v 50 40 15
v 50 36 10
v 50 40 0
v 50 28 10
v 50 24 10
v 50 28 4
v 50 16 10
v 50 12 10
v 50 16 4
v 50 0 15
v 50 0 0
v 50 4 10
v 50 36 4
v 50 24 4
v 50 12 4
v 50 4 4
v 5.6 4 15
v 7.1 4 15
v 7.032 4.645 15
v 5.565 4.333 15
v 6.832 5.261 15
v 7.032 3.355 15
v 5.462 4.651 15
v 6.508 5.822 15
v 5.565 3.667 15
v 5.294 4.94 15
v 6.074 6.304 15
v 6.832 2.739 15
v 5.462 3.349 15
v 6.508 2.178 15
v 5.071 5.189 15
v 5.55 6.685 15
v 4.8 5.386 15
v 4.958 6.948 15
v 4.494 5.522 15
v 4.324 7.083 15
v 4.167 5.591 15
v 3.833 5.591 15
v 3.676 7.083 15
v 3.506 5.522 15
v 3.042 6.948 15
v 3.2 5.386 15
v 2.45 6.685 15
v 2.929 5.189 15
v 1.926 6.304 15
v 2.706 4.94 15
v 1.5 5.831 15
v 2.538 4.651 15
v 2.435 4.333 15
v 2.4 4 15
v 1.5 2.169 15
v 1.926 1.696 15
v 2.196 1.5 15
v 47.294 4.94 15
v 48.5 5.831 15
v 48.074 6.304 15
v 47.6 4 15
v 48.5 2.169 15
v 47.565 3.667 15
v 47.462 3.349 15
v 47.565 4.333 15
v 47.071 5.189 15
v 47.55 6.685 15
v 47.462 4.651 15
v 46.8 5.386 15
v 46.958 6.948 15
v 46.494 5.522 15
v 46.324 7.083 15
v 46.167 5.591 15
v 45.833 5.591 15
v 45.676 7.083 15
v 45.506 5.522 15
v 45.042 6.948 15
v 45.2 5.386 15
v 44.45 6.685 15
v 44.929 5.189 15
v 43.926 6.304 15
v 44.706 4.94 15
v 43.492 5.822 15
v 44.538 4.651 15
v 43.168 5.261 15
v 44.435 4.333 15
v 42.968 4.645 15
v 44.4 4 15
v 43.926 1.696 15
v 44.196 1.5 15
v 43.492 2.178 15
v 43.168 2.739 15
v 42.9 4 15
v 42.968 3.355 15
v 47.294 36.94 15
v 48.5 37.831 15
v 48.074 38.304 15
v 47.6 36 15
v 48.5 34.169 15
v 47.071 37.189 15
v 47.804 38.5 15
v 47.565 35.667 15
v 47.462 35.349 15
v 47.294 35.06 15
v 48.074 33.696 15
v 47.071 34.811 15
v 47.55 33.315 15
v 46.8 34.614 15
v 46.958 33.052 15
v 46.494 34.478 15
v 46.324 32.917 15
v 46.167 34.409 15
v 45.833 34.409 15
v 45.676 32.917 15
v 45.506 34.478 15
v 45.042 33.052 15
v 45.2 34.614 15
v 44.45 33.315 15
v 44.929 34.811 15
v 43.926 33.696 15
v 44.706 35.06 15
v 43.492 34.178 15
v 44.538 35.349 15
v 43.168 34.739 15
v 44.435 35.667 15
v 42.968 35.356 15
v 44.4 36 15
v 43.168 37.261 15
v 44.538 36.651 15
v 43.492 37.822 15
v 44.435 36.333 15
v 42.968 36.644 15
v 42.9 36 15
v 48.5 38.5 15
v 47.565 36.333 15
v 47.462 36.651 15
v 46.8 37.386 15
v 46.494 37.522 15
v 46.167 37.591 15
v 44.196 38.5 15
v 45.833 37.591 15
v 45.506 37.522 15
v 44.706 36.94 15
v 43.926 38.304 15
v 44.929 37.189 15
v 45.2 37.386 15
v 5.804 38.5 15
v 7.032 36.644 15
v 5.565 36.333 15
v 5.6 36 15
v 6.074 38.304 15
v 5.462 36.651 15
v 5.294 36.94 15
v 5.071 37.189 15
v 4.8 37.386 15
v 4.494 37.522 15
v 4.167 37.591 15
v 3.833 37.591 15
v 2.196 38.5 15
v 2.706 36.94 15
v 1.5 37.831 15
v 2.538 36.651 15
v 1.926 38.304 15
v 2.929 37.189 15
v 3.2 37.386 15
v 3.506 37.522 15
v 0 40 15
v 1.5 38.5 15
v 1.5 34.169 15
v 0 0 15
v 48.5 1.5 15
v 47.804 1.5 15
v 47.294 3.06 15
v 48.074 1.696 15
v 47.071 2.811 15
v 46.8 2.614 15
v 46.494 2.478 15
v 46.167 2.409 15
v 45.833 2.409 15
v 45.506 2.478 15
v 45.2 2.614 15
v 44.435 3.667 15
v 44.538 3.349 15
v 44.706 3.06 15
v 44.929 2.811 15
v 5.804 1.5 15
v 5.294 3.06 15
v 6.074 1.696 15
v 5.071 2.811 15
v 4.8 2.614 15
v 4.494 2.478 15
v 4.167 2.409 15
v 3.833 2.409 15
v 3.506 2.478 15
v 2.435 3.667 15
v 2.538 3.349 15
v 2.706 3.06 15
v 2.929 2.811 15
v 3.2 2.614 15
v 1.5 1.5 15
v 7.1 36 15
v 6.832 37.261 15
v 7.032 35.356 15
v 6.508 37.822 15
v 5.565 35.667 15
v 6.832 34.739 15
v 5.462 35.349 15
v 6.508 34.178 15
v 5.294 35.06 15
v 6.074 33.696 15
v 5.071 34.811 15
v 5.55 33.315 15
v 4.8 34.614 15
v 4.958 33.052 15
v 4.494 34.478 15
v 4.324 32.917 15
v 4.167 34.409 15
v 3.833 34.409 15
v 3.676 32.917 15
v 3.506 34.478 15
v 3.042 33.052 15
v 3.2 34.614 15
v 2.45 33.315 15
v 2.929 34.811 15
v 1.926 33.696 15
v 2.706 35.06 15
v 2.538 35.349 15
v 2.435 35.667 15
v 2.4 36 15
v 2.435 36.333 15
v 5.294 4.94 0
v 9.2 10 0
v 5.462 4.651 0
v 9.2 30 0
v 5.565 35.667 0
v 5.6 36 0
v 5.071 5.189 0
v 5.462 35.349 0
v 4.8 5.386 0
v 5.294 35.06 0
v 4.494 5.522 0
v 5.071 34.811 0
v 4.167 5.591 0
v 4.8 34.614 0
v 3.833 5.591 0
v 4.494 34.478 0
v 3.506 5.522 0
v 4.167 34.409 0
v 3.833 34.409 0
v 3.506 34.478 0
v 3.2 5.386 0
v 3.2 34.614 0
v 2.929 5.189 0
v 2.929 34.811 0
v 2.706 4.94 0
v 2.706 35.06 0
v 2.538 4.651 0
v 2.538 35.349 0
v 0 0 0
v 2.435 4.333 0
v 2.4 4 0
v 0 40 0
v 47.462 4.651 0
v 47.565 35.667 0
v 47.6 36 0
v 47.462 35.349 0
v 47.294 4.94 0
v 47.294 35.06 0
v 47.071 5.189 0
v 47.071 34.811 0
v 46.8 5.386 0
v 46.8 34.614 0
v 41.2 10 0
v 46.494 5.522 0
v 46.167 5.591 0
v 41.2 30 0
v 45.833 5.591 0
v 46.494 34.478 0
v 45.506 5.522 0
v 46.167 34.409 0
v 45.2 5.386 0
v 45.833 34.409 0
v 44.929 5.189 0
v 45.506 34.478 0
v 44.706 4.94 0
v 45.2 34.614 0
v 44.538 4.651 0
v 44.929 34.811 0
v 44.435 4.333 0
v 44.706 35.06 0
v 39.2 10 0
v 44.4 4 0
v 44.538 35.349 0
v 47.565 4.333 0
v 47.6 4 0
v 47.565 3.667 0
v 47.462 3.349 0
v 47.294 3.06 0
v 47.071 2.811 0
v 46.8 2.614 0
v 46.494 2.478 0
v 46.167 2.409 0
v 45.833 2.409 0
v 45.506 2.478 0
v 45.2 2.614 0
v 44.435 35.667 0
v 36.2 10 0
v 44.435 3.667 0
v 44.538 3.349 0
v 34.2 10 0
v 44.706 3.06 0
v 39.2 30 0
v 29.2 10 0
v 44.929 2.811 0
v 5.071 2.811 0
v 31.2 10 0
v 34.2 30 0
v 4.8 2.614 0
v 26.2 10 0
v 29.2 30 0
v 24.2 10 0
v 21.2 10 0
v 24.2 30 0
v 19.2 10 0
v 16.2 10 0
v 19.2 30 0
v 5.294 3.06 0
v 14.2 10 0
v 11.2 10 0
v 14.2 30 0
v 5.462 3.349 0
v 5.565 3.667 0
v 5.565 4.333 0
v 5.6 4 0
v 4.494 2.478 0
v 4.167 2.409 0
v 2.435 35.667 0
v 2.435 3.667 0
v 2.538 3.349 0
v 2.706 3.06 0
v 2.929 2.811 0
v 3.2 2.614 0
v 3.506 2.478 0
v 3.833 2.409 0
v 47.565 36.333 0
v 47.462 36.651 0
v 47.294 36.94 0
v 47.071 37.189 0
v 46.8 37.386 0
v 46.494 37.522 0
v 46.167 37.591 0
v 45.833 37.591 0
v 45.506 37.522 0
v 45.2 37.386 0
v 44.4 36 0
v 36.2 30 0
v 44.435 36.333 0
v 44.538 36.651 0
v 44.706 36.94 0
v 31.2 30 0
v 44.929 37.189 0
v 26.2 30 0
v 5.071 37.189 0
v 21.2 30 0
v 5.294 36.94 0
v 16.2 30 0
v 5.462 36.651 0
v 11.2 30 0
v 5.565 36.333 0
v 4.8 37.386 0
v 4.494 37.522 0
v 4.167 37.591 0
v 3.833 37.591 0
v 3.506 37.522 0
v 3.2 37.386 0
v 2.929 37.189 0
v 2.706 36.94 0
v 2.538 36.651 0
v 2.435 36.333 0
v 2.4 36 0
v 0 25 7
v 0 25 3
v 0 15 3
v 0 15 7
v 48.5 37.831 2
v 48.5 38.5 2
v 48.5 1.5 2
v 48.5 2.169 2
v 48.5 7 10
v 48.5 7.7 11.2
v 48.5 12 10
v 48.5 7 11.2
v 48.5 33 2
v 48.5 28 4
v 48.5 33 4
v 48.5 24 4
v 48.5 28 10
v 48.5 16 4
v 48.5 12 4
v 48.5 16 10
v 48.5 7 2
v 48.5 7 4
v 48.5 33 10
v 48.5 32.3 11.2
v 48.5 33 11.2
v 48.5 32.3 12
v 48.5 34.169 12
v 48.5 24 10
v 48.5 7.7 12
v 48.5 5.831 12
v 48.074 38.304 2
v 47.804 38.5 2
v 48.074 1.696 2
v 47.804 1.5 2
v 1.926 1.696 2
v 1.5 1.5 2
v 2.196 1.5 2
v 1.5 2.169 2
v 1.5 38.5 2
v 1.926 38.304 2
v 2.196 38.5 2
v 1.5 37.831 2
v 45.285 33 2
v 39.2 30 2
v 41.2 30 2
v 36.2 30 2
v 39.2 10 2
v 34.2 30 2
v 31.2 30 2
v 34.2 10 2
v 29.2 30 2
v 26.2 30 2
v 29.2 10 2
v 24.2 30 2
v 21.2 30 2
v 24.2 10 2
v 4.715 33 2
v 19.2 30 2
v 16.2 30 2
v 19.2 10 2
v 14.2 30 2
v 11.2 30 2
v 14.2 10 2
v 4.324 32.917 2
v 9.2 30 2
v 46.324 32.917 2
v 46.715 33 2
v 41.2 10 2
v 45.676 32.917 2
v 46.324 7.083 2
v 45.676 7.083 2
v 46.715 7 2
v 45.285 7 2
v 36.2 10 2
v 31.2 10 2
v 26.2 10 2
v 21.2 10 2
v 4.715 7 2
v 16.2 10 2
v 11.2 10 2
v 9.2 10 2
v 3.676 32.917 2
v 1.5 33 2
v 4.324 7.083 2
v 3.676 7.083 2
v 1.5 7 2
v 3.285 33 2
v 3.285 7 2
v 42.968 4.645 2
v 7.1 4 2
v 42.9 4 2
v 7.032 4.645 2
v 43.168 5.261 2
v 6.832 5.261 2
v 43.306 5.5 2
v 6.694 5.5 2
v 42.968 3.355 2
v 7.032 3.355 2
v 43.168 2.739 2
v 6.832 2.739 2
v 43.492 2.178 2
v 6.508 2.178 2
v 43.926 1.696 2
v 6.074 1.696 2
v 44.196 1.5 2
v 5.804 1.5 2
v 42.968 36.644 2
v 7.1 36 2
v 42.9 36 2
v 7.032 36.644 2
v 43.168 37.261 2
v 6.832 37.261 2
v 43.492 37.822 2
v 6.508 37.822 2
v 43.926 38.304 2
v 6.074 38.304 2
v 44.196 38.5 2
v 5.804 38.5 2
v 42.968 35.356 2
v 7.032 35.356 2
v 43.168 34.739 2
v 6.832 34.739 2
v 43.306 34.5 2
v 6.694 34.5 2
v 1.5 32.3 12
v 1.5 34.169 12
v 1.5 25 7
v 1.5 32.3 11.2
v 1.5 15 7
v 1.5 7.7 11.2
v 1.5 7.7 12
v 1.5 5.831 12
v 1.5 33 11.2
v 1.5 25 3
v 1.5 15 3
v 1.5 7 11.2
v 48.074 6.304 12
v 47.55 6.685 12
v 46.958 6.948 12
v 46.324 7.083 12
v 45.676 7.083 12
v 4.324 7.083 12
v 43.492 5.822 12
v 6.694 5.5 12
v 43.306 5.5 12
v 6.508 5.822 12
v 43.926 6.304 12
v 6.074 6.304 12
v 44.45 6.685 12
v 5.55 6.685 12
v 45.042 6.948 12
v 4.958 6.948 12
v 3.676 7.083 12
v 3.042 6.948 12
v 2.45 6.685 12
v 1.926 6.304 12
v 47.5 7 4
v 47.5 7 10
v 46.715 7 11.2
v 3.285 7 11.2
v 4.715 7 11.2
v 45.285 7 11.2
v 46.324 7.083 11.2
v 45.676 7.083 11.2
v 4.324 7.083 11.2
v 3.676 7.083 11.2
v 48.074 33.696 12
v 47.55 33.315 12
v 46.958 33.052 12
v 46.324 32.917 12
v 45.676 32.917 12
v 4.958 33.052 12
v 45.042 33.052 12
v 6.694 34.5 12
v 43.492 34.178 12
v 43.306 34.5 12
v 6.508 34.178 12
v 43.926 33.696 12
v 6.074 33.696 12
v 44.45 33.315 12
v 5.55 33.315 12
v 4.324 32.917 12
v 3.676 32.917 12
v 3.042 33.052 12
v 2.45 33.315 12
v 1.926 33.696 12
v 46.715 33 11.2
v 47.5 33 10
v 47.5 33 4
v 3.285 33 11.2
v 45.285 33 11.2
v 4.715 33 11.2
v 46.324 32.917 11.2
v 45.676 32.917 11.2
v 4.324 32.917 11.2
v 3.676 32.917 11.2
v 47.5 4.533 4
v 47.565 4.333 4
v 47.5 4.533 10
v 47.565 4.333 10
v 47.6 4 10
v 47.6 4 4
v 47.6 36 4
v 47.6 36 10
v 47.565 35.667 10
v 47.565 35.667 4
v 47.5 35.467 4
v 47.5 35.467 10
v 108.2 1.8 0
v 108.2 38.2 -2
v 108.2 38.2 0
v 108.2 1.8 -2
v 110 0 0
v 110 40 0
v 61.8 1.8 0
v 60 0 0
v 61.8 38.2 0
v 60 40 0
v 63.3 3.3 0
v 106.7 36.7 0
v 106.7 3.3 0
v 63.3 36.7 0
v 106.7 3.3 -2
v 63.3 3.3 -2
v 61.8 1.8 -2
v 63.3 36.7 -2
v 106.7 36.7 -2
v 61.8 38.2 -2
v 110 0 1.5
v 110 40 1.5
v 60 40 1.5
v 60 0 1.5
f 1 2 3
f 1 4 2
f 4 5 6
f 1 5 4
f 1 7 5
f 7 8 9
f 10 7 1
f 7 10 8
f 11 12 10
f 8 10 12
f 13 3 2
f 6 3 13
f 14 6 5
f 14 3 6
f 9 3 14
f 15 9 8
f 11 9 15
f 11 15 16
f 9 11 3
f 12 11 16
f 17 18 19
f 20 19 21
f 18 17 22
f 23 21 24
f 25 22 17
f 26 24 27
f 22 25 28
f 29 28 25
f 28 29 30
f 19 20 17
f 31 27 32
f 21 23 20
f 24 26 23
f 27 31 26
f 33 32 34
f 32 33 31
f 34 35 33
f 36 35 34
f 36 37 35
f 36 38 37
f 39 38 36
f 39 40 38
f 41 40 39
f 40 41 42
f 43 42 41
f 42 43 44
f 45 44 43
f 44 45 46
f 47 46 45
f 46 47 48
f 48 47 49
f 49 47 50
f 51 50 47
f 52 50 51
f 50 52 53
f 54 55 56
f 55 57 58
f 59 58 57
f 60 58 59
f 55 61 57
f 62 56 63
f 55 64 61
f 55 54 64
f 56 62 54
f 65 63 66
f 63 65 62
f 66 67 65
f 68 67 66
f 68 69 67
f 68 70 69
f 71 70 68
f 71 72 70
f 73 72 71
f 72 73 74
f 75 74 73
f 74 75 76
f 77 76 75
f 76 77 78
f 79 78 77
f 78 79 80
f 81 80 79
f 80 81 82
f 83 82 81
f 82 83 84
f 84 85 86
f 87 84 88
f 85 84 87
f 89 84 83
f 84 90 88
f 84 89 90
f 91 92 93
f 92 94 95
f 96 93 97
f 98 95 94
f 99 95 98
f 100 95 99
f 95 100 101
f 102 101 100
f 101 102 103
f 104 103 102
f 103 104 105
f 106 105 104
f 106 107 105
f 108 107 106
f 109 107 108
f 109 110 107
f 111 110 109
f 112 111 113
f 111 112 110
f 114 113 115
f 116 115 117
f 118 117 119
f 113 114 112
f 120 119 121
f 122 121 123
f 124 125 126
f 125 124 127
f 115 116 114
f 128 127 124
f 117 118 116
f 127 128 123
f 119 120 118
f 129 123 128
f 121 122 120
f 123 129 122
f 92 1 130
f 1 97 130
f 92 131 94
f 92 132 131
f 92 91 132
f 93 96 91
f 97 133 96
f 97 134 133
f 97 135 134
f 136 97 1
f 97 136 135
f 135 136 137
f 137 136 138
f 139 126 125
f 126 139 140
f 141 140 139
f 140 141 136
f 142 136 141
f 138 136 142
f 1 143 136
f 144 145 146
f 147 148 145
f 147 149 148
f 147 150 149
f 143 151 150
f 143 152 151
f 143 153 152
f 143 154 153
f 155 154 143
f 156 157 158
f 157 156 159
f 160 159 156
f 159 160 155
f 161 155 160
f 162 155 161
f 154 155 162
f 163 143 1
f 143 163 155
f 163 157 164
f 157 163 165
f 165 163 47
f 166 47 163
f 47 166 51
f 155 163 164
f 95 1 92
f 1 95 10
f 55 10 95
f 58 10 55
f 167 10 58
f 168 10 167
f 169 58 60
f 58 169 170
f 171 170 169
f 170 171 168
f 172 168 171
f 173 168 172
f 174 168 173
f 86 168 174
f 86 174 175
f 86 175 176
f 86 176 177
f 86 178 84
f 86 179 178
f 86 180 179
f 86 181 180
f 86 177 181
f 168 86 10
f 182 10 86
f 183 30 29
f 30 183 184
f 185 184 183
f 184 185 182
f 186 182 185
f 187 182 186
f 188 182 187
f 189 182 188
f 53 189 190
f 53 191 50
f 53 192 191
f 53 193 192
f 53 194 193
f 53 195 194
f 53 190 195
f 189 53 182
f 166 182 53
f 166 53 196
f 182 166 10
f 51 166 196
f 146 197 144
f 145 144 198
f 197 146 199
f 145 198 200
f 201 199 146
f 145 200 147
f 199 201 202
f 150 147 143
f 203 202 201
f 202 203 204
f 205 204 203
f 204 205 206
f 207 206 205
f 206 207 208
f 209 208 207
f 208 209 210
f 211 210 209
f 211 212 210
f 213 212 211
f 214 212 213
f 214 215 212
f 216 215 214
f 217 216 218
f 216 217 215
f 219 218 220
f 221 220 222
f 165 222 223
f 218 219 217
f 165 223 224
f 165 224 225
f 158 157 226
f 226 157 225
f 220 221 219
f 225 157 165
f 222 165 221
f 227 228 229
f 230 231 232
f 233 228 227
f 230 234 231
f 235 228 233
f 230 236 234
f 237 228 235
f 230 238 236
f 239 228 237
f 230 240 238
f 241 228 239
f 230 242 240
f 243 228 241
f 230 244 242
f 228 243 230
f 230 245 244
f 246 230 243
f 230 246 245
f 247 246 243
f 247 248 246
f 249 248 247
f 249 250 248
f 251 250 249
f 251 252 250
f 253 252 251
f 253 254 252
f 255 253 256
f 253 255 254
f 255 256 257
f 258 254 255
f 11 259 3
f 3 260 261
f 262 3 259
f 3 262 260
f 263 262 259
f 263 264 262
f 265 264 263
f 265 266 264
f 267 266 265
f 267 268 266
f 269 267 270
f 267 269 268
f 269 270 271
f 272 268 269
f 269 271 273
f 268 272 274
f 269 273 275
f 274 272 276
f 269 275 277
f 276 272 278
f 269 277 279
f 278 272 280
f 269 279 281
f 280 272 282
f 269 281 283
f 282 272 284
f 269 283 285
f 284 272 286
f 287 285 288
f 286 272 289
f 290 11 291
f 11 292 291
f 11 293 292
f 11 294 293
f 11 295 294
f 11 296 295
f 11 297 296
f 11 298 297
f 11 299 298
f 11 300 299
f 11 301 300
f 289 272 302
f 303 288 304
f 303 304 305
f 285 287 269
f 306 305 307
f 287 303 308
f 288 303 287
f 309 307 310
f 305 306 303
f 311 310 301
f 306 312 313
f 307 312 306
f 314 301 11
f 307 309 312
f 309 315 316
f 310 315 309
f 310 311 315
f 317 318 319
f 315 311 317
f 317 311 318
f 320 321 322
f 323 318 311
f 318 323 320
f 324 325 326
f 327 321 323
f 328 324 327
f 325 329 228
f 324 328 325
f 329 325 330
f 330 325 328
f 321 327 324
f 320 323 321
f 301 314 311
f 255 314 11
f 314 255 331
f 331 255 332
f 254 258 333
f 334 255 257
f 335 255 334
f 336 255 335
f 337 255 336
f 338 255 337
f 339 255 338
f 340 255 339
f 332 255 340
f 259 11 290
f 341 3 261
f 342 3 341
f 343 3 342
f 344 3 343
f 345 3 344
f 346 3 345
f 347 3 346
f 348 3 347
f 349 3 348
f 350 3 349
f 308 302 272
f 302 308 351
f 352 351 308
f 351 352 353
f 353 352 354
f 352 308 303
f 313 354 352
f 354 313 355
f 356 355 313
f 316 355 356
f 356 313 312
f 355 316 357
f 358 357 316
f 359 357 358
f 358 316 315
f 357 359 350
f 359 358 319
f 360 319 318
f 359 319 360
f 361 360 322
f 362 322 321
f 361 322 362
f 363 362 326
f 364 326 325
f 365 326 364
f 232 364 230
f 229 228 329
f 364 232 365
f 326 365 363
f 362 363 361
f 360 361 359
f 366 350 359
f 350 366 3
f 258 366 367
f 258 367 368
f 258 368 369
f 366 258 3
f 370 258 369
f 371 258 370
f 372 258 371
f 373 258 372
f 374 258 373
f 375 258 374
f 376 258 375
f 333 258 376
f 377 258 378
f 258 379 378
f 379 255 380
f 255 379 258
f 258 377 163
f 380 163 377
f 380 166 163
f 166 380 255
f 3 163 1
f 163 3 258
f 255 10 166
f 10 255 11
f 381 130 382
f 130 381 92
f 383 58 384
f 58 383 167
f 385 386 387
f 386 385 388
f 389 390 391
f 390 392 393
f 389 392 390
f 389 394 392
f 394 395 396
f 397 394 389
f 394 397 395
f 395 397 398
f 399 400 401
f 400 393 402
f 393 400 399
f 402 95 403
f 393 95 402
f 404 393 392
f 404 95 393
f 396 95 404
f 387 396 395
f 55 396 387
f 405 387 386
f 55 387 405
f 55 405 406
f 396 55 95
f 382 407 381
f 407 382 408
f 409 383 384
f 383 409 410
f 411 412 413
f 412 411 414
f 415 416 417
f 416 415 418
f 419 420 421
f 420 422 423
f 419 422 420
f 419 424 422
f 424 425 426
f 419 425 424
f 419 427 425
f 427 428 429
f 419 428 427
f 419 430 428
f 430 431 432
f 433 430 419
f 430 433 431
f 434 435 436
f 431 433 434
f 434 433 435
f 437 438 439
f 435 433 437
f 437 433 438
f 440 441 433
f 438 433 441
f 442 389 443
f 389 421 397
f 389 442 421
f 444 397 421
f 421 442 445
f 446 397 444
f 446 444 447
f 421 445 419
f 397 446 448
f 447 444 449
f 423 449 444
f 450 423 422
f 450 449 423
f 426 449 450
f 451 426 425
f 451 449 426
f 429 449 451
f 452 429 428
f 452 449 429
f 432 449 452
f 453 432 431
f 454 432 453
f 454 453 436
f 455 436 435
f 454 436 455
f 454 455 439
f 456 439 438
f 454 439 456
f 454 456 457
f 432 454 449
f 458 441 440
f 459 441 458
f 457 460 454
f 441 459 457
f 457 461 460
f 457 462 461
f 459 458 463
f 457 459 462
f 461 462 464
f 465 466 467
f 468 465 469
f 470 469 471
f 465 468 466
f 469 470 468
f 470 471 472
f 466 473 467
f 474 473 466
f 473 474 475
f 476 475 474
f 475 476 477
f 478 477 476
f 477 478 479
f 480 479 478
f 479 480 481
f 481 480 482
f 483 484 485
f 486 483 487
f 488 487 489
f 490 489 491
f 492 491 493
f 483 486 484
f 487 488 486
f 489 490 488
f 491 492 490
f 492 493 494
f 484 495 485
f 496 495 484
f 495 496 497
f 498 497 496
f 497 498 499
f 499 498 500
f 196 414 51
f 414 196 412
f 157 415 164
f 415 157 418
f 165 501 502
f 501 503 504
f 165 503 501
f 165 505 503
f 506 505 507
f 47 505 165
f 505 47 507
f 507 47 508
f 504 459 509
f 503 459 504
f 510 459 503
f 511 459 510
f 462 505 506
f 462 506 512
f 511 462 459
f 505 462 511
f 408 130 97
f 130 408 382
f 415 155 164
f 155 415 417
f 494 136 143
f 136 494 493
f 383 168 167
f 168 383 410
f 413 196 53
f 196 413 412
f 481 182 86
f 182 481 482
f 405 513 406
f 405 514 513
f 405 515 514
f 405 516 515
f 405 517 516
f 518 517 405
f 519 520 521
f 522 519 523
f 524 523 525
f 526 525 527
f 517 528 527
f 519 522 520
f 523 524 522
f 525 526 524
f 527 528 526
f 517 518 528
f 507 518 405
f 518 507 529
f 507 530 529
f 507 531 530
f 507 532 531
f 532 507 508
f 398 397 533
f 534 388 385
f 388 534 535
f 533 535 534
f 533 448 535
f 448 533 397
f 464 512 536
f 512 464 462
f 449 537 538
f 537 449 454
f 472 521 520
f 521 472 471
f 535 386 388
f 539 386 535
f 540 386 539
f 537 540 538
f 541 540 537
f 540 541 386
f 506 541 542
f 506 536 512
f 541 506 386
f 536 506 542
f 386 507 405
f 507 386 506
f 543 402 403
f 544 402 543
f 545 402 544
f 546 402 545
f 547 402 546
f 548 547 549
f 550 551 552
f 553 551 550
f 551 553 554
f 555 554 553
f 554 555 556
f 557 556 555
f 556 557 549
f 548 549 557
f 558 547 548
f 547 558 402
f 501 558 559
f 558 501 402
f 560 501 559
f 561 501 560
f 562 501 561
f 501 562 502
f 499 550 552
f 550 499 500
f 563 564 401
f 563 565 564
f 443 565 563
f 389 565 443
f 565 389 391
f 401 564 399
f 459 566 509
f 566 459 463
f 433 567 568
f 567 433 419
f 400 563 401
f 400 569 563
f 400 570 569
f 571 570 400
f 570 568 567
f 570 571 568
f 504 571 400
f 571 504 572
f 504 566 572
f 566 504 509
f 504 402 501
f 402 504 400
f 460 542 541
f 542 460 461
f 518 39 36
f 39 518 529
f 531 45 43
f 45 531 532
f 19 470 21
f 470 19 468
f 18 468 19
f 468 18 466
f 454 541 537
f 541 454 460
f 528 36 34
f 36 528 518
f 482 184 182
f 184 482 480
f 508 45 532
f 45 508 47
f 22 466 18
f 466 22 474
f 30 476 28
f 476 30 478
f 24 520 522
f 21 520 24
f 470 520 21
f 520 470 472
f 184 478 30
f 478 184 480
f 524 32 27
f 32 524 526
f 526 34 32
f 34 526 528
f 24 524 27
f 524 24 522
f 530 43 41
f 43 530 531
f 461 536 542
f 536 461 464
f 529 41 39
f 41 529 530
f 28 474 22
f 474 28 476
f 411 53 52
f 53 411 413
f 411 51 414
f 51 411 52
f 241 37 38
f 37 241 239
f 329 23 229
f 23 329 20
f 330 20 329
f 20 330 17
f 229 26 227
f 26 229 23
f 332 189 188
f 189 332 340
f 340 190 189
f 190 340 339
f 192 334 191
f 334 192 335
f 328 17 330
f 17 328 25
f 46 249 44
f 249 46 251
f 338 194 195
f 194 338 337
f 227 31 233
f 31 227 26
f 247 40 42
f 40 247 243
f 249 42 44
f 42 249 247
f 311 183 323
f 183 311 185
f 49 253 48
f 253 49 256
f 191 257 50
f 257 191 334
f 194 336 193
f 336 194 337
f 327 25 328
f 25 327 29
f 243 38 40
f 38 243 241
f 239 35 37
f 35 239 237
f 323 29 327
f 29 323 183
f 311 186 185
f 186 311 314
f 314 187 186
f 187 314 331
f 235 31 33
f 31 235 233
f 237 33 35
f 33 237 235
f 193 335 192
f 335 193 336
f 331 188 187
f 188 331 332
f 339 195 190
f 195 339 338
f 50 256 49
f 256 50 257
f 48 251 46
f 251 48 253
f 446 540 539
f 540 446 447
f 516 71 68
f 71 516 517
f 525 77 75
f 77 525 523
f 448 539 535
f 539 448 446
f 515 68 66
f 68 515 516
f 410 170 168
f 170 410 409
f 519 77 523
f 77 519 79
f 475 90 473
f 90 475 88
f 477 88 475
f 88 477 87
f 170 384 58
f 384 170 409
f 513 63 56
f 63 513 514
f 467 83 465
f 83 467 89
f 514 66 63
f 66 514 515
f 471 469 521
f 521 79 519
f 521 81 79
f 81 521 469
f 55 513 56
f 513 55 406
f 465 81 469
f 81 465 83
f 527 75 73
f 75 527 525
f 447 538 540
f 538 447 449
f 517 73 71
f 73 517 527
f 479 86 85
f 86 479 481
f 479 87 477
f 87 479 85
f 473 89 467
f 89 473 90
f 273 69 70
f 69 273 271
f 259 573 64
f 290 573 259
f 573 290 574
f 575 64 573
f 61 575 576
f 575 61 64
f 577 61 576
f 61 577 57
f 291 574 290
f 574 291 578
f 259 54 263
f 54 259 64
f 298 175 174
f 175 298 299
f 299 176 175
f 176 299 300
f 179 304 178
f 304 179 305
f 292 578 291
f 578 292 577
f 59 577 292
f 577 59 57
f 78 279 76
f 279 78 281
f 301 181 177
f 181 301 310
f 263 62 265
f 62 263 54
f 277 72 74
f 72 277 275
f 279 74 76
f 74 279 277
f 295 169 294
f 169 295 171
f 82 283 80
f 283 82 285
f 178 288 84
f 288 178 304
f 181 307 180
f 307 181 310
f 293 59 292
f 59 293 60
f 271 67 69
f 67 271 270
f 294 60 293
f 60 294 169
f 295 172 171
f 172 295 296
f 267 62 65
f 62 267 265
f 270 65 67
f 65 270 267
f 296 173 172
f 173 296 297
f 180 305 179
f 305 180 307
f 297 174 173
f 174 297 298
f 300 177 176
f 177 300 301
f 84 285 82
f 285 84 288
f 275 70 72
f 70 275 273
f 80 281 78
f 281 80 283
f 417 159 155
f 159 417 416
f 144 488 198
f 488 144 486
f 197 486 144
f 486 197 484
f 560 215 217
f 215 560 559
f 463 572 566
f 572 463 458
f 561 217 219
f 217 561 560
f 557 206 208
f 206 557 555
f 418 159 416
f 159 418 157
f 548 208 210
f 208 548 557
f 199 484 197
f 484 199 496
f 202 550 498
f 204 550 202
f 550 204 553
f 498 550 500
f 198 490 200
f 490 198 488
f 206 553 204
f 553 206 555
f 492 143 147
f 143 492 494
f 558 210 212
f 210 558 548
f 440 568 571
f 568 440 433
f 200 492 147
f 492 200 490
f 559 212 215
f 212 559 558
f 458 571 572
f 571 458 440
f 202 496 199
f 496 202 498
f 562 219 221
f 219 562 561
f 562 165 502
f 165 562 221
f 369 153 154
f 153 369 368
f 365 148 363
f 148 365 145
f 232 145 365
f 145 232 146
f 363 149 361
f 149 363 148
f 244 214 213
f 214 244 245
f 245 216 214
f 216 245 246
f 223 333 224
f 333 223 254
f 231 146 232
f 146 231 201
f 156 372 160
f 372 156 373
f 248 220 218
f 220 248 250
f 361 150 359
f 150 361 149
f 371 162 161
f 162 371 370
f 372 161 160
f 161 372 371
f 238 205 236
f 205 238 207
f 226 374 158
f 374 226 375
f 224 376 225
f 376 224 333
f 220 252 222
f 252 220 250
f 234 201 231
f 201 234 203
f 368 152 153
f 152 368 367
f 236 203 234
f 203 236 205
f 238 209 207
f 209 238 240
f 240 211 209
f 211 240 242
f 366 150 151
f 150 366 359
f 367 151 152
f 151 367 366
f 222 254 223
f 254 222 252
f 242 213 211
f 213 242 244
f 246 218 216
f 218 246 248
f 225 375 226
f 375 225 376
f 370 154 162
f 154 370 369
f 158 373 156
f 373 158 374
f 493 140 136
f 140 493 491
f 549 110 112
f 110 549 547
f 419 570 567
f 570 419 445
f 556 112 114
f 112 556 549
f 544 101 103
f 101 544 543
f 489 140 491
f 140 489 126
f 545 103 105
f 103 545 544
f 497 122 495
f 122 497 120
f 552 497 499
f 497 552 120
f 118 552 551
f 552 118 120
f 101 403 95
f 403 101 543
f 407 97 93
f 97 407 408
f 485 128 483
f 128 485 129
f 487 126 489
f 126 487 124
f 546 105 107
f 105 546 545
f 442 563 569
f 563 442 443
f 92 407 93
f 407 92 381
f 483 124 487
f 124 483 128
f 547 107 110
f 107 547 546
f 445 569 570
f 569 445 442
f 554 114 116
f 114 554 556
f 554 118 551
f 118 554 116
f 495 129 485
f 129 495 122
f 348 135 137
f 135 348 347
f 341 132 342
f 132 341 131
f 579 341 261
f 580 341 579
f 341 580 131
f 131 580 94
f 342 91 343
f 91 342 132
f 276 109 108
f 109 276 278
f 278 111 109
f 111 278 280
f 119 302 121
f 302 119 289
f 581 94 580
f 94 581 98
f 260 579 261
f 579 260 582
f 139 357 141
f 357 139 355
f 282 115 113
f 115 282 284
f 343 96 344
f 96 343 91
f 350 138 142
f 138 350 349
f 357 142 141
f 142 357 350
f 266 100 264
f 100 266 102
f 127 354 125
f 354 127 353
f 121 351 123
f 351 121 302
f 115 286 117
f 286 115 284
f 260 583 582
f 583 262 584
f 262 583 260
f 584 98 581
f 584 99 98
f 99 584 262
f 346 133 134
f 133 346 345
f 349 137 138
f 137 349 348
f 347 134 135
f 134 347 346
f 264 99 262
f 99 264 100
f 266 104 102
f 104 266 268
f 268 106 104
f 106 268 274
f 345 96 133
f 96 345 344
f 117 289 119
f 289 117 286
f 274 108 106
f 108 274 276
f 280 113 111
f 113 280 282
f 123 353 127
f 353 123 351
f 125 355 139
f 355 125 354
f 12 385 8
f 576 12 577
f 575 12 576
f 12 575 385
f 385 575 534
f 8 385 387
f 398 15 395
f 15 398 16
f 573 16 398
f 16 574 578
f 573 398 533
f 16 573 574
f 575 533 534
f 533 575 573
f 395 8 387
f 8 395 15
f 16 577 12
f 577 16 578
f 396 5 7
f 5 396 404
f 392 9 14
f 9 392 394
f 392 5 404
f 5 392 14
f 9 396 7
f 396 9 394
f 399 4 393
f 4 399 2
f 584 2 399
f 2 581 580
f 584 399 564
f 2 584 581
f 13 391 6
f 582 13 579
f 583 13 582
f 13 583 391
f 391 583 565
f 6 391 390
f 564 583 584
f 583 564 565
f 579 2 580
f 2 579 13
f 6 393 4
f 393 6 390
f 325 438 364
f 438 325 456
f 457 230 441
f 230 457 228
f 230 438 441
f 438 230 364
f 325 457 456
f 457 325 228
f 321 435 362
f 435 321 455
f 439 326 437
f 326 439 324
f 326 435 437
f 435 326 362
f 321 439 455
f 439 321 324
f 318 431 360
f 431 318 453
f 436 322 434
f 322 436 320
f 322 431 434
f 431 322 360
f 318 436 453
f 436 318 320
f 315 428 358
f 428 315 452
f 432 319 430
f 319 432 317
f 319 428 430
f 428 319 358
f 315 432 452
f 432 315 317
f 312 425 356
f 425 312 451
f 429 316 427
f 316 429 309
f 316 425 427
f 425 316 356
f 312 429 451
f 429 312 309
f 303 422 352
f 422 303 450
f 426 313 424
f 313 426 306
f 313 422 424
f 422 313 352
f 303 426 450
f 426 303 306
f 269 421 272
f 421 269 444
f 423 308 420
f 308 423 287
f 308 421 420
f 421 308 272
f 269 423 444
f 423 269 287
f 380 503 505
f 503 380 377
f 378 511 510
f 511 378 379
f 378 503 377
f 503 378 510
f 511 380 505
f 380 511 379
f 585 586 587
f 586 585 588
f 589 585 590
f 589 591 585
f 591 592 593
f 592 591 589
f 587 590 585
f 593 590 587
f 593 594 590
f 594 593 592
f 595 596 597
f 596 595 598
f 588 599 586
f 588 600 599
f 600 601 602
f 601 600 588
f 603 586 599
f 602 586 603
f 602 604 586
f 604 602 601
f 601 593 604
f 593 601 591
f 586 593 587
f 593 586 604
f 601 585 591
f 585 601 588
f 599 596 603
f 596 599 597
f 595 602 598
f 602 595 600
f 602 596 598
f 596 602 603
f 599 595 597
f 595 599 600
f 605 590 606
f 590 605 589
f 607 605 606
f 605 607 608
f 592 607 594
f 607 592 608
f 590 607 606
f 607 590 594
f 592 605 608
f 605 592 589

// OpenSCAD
// RealWorldClaw Core Module Base
// RealWorldClaw Team - 2026-02-21
// 容纳 ESP32-S3-DevKitC-1 + 3x JST-XH 8pin

$fn = 30;

// === 参数 ===
base_w = 50;        // X方向
base_d = 40;        // Y方向
base_h = 15;        // 总高
wall = 1.5;         // 壁厚
floor_t = 2;        // 底板厚度
gap = 0.3;          // FDM间隙

// ESP32-S3-DevKitC-1
esp_w = 25.4 + gap*2;   // 槽宽（Y方向）
esp_l = 69;              // 长度（会突出）
esp_pcb_t = 1.6;         // PCB厚度
esp_h = 8;               // 元件高度（含PCB）

// JST-XH 8pin母座
jst_w = 8;
jst_h = 6;
jst_count = 3;

// USB-C开口
usbc_w = 10;
usbc_h = 4;

// M3螺丝孔
m3_d = 3.2;
m3_inset = 4;  // 从边缘到孔中心

// 通风格栅
vent_slot_w = 2;
vent_gap = 3;

// === 主体 ===
module base_shell() {
    difference() {
        // 外壳
        cube([base_w, base_d, base_h]);
        
        // 内腔
        translate([wall, wall, floor_t])
            cube([base_w - 2*wall, base_d - 2*wall, base_h]);
    }
}

// === ESP32卡槽（沿X方向放置，居中于Y） ===
module esp_slot() {
    slot_y = (base_d - esp_w) / 2;
    
    // 两侧导轨（L形卡槽）
    rail_h = esp_h + 2;
    rail_w = 1.5;
    lip = 0.8;  // 卡扣唇
    
    // 左导轨
    translate([wall, slot_y - rail_w, floor_t]) {
        cube([base_w - 2*wall, rail_w, rail_h]);
        // 卡扣唇（顶部内侧）
        translate([0, rail_w - 0.1, rail_h - lip])
            cube([base_w - 2*wall, lip, lip]);
    }
    
    // 右导轨
    translate([wall, slot_y + esp_w, floor_t]) {
        cube([base_w - 2*wall, rail_w, rail_h]);
        // 卡扣唇
        translate([0, 0.1 - lip, rail_h - lip])
            cube([base_w - 2*wall, lip, lip]);
    }
}

// === USB-C开口（X=0侧，即插入方向前端） ===
module usbc_cutout() {
    usbc_z = floor_t + 1;  // 略高于底板
    translate([-1, (base_d - usbc_w)/2, usbc_z])
        cube([wall + 2, usbc_w, usbc_h]);
}

// === JST接口开口（X=base_w侧，3个均匀排列） ===
module jst_cutouts() {
    total_span = jst_count * jst_w + (jst_count - 1) * 4;
    start_y = (base_d - total_span) / 2;
    jst_z = floor_t + 2;
    
    for (i = [0 : jst_count - 1]) {
        y = start_y + i * (jst_w + 4);
        translate([base_w - wall - 1, y, jst_z])
            cube([wall + 2, jst_w, jst_h]);
    }
}

// === M3螺丝孔 ===
module screw_holes() {
    positions = [
        [m3_inset, m3_inset],
        [base_w - m3_inset, m3_inset],
        [m3_inset, base_d - m3_inset],
        [base_w - m3_inset, base_d - m3_inset]
    ];
    
    for (p = positions) {
        // 螺丝柱
        translate([p[0], p[1], floor_t])
            cylinder(d = m3_d + 3, h = base_h - floor_t);
        // 通孔
        translate([p[0], p[1], -1])
            cylinder(d = m3_d, h = base_h + 2);
    }
}

// === 底部通风格栅 ===
module vent_grille() {
    vent_area_x = base_w - 2 * (m3_inset + m3_d);
    start_x = m3_inset + m3_d + 2;
    n_slots = floor(vent_area_x / (vent_slot_w + vent_gap));
    
    for (i = [0 : n_slots - 1]) {
        x = start_x + i * (vent_slot_w + vent_gap);
        translate([x, base_d * 0.25, -1])
            cube([vent_slot_w, base_d * 0.5, floor_t + 2]);
    }
}

// === 盖板（可选，独立打印） ===
module lid() {
    lid_t = 1.5;
    lip_h = 2;
    lip_gap = gap;
    
    translate([base_w + 10, 0, 0]) {
        // 顶板
        cube([base_w, base_d, lid_t]);
        // 内嵌唇（插入壳体内）
        translate([wall + lip_gap, wall + lip_gap, -lip_h])
            difference() {
                cube([base_w - 2*(wall + lip_gap), base_d - 2*(wall + lip_gap), lip_h]);
                translate([wall, wall, -1])
                    cube([base_w - 2*(wall + lip_gap) - 2*wall, 
                          base_d - 2*(wall + lip_gap) - 2*wall, 
                          lip_h + 2]);
            }
    }
}

// === 组装 ===
difference() {
    union() {
        base_shell();
        esp_slot();
        screw_holes();  // 螺丝柱部分
    }
    
    // 减去开口和孔
    usbc_cutout();
    jst_cutouts();
    vent_grille();
    
    // 螺丝通孔（重新减）
    positions = [
        [m3_inset, m3_inset],
        [base_w - m3_inset, m3_inset],
        [m3_inset, base_d - m3_inset],
        [base_w - m3_inset, base_d - m3_inset]
    ];
    for (p = positions) {
        translate([p[0], p[1], -1])
            cylinder(d = m3_d, h = base_h + 2);
    }
}

// 盖板（放在旁边）
lid();
